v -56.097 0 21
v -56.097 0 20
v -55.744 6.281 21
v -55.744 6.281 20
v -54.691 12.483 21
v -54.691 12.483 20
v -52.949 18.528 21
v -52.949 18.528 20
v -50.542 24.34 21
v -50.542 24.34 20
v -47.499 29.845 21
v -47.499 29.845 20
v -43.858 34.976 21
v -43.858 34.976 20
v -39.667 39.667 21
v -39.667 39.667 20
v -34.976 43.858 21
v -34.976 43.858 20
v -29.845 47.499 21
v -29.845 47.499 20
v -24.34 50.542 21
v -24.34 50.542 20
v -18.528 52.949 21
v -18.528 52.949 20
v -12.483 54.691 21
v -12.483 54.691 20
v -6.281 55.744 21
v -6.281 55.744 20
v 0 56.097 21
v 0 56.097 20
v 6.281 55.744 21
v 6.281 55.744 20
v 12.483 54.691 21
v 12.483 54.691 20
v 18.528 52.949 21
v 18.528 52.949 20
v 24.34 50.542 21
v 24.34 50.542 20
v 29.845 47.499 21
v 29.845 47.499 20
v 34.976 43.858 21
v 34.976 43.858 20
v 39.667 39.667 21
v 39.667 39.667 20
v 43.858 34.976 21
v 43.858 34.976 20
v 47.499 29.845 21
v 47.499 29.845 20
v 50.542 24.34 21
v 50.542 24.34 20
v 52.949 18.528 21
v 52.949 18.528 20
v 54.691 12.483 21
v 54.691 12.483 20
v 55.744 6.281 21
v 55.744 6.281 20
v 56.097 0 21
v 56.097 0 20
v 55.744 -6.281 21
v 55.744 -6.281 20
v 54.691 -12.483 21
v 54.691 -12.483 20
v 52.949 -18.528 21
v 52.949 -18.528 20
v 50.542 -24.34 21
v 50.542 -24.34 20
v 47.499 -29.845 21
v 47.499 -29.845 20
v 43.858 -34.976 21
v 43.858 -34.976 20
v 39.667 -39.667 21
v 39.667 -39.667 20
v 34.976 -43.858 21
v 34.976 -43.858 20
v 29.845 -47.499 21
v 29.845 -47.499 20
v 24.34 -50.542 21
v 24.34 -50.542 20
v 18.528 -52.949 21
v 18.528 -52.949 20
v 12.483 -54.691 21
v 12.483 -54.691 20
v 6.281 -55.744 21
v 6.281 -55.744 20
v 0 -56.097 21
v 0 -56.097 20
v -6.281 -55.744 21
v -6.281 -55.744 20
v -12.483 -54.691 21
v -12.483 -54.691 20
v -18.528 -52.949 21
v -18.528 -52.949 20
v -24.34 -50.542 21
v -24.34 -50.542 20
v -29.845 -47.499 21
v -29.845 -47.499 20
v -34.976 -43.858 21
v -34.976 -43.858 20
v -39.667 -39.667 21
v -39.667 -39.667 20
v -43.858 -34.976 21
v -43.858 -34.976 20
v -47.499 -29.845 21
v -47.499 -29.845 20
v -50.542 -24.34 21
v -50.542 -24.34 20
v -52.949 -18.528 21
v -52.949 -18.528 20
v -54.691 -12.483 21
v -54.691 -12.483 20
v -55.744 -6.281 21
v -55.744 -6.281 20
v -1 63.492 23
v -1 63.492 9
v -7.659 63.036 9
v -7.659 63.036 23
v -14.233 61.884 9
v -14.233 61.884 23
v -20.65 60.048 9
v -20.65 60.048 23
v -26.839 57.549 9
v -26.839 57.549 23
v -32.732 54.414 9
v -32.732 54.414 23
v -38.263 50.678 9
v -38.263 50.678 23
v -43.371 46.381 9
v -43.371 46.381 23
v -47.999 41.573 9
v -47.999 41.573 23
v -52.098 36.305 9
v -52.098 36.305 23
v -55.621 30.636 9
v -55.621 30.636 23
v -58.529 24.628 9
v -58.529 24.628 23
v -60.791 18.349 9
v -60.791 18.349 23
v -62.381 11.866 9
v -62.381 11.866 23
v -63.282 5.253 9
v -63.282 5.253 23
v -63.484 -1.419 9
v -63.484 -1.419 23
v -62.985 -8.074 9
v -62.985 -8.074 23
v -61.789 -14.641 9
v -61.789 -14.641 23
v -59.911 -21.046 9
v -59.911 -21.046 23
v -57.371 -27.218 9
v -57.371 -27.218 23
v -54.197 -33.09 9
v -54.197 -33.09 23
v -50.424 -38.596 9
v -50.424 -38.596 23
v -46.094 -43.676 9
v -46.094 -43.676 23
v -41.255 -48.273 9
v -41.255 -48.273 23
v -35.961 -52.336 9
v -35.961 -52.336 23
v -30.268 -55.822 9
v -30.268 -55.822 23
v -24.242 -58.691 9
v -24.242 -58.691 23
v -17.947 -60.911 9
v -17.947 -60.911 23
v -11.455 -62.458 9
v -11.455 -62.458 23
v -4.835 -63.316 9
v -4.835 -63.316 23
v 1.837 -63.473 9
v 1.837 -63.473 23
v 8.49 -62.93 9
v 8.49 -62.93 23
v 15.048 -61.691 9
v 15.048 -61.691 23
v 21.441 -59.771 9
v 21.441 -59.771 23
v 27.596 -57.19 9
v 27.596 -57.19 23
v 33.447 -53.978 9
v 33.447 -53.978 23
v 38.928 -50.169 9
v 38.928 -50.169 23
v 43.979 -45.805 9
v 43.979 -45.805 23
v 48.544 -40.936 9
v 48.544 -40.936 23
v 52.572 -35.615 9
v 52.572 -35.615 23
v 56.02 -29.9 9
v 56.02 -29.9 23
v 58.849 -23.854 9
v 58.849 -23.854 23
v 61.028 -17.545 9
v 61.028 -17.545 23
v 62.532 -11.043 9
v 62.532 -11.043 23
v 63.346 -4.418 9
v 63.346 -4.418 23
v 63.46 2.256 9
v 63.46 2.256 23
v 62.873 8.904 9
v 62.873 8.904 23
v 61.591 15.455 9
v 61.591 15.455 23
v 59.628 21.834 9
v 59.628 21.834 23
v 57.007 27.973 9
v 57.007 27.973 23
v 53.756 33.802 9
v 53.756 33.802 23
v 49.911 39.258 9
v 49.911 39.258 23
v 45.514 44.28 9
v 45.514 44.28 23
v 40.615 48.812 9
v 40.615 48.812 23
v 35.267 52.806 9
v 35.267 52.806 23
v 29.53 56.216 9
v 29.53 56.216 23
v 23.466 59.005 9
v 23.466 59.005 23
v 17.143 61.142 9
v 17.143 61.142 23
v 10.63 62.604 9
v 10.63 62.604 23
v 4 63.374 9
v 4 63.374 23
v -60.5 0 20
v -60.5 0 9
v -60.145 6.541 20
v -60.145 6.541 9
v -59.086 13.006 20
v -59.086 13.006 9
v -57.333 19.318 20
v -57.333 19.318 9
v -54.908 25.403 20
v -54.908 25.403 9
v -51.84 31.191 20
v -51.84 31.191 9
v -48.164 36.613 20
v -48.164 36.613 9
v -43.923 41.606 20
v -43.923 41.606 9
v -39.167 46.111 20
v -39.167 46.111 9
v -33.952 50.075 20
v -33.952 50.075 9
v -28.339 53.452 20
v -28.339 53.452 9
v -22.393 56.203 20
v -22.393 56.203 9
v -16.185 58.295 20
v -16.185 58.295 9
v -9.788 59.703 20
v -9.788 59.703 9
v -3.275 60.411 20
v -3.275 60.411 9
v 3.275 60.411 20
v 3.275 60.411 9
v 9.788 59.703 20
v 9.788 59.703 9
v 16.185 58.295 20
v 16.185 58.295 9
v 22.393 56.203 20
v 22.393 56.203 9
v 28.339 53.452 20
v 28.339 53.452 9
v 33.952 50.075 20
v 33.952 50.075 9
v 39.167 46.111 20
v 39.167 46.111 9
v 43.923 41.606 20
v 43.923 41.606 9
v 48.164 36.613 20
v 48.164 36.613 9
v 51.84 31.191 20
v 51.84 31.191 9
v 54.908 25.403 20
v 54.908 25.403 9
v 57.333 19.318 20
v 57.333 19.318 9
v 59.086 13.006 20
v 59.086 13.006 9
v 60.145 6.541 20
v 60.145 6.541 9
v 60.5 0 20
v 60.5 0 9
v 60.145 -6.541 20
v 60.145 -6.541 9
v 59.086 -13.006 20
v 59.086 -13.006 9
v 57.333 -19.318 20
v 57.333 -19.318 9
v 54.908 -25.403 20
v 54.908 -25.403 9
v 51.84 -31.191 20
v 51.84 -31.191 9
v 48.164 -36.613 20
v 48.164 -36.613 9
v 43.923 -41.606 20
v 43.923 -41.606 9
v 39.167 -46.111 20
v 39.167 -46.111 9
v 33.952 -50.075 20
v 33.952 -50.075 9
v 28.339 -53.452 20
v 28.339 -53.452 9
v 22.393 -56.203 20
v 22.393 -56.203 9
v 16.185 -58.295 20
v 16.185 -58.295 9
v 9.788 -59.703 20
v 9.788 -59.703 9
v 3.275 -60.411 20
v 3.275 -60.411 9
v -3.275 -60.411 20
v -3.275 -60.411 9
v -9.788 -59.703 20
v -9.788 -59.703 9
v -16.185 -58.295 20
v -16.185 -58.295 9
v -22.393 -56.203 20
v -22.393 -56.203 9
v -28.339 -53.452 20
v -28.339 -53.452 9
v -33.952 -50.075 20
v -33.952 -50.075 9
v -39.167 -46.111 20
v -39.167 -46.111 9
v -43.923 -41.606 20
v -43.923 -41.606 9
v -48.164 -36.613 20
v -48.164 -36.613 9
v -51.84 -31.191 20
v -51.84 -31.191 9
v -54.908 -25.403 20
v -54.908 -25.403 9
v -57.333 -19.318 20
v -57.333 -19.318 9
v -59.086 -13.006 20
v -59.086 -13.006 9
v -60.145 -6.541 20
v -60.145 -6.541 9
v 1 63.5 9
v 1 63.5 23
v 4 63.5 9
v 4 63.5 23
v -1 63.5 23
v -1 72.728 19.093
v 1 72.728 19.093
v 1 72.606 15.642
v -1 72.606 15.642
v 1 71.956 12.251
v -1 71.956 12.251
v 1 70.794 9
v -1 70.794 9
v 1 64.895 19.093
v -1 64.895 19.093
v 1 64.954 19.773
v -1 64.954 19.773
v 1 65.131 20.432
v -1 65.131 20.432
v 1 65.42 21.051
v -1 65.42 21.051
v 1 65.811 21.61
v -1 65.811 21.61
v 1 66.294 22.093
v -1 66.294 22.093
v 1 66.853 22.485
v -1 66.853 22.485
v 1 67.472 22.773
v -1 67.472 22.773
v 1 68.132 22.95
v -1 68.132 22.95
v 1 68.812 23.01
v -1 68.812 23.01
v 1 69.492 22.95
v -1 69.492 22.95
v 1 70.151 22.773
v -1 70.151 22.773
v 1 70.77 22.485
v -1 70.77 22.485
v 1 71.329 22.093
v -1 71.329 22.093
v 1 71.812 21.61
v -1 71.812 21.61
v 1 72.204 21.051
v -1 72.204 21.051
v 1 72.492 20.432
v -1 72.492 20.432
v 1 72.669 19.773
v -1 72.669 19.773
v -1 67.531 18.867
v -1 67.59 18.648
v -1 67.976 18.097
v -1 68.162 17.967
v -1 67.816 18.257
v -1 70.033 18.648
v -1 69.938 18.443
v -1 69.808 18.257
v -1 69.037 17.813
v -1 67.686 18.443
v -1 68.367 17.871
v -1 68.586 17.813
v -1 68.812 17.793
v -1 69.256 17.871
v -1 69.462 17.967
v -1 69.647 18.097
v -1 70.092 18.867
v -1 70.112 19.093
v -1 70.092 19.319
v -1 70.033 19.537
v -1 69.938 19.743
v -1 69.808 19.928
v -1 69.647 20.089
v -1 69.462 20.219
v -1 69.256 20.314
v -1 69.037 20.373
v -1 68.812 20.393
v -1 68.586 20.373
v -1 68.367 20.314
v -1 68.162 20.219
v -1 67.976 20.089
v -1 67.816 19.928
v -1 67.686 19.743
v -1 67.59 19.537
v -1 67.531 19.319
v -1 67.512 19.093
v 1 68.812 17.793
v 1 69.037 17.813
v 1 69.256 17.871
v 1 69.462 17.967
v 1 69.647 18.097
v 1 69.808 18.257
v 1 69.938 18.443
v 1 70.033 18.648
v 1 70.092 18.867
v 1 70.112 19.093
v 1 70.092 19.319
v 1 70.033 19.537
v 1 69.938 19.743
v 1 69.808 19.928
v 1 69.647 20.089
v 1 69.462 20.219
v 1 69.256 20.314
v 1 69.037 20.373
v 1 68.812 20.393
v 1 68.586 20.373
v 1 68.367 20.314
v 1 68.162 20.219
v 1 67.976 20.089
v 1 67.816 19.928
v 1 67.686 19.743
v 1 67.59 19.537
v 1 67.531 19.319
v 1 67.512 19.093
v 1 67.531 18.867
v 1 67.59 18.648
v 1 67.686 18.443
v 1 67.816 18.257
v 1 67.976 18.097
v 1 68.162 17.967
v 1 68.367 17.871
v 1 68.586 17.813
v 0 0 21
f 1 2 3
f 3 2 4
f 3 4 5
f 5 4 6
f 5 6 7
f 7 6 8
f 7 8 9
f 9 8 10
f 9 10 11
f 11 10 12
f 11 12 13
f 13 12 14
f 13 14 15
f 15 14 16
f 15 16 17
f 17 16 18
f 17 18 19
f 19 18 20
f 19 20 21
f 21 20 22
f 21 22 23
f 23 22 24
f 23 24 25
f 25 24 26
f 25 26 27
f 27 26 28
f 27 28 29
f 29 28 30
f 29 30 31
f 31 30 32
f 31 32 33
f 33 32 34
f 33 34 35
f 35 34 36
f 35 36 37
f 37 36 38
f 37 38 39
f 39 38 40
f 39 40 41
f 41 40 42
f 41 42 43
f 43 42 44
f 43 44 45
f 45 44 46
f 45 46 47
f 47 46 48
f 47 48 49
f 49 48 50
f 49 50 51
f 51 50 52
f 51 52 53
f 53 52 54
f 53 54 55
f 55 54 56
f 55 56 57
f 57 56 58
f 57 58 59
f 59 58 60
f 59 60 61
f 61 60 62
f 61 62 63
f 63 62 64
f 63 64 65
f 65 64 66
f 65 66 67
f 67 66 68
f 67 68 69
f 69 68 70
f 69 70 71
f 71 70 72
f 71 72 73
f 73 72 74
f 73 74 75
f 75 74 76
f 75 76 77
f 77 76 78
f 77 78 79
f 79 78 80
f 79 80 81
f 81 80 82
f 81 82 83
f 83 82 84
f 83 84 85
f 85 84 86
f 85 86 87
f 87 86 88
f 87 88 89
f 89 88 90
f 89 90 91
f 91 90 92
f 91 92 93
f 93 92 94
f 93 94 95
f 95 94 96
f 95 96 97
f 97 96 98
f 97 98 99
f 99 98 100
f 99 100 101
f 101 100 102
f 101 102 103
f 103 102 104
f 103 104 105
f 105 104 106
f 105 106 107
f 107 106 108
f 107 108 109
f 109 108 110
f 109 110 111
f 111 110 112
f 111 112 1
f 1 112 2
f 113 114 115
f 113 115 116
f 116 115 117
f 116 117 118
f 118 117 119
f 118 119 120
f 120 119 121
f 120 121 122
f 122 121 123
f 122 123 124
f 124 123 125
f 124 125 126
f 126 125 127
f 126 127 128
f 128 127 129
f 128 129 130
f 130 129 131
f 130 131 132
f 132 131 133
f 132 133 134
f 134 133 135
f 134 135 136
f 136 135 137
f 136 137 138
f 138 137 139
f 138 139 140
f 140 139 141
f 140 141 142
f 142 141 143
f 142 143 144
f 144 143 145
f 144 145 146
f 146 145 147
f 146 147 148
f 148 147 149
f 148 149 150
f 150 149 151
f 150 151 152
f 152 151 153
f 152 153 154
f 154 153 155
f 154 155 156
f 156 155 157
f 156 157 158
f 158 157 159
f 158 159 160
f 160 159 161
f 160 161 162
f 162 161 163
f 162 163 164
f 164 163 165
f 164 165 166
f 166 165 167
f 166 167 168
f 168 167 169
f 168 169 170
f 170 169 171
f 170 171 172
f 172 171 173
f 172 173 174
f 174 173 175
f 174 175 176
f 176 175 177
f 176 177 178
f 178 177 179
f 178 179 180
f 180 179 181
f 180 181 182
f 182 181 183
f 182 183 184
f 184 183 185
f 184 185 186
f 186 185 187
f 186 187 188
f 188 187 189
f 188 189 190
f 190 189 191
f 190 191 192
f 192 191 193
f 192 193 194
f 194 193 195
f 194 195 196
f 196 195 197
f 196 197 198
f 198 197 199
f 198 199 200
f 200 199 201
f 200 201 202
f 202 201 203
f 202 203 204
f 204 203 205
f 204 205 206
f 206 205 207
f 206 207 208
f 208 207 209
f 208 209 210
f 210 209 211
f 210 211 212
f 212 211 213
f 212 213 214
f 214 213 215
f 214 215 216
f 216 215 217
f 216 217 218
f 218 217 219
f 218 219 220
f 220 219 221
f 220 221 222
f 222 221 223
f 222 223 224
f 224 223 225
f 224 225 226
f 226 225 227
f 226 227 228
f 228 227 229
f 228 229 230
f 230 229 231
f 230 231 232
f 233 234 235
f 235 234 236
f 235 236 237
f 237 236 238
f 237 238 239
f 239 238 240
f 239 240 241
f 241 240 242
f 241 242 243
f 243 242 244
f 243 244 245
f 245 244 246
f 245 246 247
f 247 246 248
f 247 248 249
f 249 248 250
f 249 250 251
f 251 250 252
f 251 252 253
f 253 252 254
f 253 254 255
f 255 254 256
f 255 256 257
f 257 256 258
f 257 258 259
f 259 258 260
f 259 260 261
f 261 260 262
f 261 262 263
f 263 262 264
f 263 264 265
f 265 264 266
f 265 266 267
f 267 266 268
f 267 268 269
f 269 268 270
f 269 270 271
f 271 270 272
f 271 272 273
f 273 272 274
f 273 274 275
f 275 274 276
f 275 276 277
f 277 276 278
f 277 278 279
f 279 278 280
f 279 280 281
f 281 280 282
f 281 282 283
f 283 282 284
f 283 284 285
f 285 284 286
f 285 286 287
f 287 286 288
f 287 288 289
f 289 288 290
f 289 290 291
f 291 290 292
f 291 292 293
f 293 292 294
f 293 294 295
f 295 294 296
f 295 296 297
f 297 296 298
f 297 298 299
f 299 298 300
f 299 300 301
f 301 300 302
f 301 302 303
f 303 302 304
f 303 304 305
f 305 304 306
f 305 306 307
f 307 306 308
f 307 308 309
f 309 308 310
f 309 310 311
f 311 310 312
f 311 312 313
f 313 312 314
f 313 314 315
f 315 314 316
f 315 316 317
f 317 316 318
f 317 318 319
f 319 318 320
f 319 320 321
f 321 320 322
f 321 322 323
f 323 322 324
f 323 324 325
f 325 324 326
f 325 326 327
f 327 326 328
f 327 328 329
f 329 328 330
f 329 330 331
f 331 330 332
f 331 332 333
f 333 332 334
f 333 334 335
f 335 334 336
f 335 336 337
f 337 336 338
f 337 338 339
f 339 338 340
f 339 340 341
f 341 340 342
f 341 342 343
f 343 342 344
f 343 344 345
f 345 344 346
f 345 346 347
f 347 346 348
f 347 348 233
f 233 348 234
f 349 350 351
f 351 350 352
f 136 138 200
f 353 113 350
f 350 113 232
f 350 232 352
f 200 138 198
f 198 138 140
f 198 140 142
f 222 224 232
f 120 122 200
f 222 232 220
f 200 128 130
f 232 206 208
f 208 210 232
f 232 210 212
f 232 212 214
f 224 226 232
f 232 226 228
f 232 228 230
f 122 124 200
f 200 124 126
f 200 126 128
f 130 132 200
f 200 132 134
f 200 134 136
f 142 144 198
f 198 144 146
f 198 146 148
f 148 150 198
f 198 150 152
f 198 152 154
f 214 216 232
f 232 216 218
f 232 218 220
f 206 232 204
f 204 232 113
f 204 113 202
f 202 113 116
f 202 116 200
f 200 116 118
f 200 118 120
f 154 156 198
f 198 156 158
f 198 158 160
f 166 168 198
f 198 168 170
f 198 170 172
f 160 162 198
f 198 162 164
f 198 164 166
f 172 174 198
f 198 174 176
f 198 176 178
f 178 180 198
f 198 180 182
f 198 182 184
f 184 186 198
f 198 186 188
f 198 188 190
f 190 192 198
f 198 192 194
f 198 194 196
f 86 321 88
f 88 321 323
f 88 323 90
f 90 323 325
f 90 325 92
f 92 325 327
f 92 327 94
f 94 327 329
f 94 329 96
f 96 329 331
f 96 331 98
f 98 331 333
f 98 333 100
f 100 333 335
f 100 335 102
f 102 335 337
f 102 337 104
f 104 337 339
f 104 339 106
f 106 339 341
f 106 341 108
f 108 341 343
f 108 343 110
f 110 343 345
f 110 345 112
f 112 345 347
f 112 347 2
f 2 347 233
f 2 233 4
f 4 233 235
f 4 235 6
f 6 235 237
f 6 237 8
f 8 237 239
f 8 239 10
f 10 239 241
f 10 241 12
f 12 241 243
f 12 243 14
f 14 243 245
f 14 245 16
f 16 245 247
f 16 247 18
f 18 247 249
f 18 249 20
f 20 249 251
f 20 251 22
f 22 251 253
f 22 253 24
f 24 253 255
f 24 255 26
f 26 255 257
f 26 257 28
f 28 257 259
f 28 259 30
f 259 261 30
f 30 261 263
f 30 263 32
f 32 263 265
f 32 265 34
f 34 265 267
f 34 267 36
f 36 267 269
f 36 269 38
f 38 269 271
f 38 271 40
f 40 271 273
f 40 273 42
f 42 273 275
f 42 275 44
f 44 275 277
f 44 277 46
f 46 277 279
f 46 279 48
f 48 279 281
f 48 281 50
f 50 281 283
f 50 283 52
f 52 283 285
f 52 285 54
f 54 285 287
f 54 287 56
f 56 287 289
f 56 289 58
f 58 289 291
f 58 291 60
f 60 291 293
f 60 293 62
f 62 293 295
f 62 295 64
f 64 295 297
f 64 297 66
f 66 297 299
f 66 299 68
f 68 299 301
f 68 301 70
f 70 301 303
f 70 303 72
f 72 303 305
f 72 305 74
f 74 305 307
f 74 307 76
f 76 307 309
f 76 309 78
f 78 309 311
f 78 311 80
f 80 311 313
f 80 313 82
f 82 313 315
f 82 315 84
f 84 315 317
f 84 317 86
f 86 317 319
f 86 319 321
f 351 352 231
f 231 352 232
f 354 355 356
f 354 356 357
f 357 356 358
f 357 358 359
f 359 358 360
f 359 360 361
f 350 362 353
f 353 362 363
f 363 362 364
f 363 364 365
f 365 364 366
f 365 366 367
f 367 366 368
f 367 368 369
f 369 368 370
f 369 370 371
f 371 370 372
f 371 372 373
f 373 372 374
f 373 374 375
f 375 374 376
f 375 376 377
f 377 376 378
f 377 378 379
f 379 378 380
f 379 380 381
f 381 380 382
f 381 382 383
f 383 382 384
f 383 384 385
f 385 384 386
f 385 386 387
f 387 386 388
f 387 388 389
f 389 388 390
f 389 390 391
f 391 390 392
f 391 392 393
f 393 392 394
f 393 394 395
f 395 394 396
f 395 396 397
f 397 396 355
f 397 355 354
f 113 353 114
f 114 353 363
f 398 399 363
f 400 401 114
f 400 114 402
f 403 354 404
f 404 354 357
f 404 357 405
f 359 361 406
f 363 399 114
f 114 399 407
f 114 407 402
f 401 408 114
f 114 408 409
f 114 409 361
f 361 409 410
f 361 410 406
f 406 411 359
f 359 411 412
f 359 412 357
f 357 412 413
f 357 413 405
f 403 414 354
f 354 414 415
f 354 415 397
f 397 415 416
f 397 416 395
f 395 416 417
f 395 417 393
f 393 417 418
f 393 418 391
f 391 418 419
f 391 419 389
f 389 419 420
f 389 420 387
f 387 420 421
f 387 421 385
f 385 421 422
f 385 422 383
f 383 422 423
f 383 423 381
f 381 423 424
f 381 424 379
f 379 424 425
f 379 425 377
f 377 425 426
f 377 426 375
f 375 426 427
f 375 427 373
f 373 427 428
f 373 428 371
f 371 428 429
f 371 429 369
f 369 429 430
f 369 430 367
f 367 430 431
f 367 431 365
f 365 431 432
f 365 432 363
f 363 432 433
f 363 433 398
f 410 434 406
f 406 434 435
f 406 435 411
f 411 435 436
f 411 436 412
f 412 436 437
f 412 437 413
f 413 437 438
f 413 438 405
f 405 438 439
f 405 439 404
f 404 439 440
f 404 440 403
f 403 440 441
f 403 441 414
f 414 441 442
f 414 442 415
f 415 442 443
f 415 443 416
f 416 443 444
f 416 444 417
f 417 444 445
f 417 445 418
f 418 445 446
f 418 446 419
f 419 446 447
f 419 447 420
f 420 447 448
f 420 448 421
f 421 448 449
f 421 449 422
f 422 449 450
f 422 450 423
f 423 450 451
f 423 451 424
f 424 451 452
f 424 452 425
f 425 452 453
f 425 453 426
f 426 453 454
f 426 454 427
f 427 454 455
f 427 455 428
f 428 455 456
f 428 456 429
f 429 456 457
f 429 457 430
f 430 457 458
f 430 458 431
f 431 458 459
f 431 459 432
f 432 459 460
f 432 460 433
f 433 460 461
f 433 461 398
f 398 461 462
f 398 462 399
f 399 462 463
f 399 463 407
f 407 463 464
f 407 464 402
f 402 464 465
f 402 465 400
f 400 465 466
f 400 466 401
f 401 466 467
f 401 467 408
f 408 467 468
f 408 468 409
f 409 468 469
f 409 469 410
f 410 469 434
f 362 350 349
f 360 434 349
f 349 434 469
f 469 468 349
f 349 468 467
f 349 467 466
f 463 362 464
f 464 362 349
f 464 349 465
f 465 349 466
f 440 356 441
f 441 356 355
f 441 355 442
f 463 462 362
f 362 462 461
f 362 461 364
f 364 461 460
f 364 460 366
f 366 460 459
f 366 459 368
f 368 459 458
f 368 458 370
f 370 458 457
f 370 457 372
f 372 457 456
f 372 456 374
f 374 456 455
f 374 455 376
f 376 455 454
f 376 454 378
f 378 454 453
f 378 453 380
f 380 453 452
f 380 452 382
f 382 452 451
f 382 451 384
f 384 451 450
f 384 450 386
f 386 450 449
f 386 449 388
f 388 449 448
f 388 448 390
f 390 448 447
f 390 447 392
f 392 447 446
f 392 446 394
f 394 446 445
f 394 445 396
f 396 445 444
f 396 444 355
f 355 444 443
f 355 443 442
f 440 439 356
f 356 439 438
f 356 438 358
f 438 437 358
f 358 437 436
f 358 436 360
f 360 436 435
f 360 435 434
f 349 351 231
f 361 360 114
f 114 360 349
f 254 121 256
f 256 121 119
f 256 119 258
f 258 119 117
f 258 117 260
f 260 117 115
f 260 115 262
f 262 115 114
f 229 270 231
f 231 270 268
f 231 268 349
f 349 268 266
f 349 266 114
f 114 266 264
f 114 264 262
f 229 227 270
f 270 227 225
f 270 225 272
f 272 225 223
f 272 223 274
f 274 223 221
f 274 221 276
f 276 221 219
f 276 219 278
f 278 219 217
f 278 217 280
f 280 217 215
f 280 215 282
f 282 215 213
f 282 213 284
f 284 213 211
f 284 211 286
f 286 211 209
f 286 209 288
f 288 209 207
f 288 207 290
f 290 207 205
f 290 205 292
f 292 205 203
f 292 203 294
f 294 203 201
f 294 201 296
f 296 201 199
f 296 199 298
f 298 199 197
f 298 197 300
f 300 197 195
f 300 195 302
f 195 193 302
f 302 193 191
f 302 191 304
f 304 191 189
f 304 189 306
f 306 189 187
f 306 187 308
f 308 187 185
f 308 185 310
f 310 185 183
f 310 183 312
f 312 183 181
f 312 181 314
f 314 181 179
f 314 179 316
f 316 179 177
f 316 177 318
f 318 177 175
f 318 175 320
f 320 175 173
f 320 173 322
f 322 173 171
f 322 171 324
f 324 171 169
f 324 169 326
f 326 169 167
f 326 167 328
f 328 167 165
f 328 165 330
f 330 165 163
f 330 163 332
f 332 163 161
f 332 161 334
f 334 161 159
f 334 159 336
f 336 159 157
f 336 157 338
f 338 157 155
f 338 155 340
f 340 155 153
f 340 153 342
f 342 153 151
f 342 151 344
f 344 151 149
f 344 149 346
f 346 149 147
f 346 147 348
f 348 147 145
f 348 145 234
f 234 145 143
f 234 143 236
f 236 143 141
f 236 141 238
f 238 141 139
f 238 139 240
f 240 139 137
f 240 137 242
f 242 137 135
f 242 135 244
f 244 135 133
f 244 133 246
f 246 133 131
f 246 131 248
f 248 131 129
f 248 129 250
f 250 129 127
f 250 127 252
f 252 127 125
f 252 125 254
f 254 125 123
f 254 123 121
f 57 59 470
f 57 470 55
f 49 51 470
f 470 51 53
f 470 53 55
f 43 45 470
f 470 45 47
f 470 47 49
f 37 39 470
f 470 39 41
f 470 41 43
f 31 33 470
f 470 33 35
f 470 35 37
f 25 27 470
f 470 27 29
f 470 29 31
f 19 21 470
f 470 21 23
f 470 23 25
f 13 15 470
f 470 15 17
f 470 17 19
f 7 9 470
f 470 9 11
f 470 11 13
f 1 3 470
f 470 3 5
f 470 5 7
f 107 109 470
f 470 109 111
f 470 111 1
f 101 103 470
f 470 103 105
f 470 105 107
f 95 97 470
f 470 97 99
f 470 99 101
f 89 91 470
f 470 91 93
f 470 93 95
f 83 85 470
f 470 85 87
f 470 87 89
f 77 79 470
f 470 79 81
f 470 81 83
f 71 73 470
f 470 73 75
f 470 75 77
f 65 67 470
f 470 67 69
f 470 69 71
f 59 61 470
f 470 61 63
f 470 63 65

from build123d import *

# Parameters (mm, degrees)
SKETCH1_R                = 63.5
BOSS_EXTRUDE2_DEPTH      = 23
SHELL4_T                 = -3
SKETCH4_R                = 56.09702957
CUT_EXTRUDE1_DEPTH       = 22
BOSS_EXTRUDE6_DEPTH      = 1
BOSS_EXTRUDE6_DEPTH_BACK = 1
SKETCH8_R                = 1.3
BOSS_EXTRUDE7_REACH      = 145.843
BOSS_EXTRUDE7_END_RADIUS = 63.5
SKETCH9_W                = 5
SKETCH9_H                = 23
SKETCH11_R               = 63.5
CUT_EXTRUDE2_DEPTH       = 9
SKETCH12_W               = 19.480164653
SKETCH12_H               = 12.222333769
CUT_EXTRUDE3_DEPTH       = 13
BOSS_EXTRUDE8_START      = -2
SKETCH13_R               = 63.5
BOSS_EXTRUDE8_DEPTH      = 2


with BuildPart() as part:
    # Sketch1 → Boss-Extrude2 (new body)
    with BuildSketch(Plane.XY):
        Circle(SKETCH1_R)
    extrude(amount=BOSS_EXTRUDE2_DEPTH)

    # Shell4
    shell4_openings = [part.faces().sort_by_distance(p)[0] for p in [
        (0, 0, 0),
    ]]
    offset(amount=SHELL4_T, openings=shell4_openings, kind=Kind.INTERSECTION)

    # Sketch4 → Cut-Extrude1 (cut)
    with BuildSketch(Plane(origin=(0, 0, 20), x_dir=(-1, 0, 0), z_dir=(0, 0, -1))):
        Circle(SKETCH4_R)
    extrude(amount=-CUT_EXTRUDE1_DEPTH, mode=Mode.SUBTRACT)



with BuildPart() as body_2:
    # Sketch8 → Boss-Extrude6 (new, two sides: drawn at the far end of the back side and taken through both)
    with BuildSketch(Plane(origin=(0, 0, 0), x_dir=(0, 0, -1), z_dir=(1, 0, 0)).offset(-BOSS_EXTRUDE6_DEPTH_BACK)):
        with BuildLine():
            Line((-23, 63.5), (0, 63.5))
            ThreePointArc((0, 63.5), (-8.388517362, 70.509736152), (-19.092759253, 72.728481295))
            ThreePointArc((-19.092759253, 72.728481295), (-23.009560108, 68.811680441), (-19.092759253, 64.894879586))
            ThreePointArc((-19.092759253, 64.894879586), (-21.050529465, 64.209064035), (-23, 63.5))
        make_face()
        with Locations((-19.092759253, 68.811680441)):
            Circle(SKETCH8_R, mode=Mode.SUBTRACT)
    extrude(amount=BOSS_EXTRUDE6_DEPTH + BOSS_EXTRUDE6_DEPTH_BACK)


with BuildPart() as part_1:
    add(part.part)

    add(body_2.part)  # Boss-Extrude7 merges body 2
    # Boss-Extrude7: up to this cylinder (the profile starts outside it)
    boss_extrude7_end = Plane(origin=(0, 0, 11.5), z_dir=(0, 0, -1)) * Cylinder(BOSS_EXTRUDE7_END_RADIUS, 419.686, mode=Mode.PRIVATE)
    # Sketch9 → Boss-Extrude7 (add, up to the surface)
    with BuildSketch(Plane.XZ.offset(-63.5), mode=Mode.PRIVATE) as boss_extrude7_sk1:
        with Locations((1.5, 11.5)):
            Rectangle(SKETCH9_W, SKETCH9_H)
    boss_extrude7_tool1 = extrude(boss_extrude7_sk1.sketch, amount=BOSS_EXTRUDE7_REACH, mode=Mode.PRIVATE) - boss_extrude7_end
    add(boss_extrude7_tool1.solids().sort_by_distance((1.5, 63.5, 11.5))[0])
    add(boss_extrude7_tool1.solids().sort_by_distance((1.5, 63.5, 11.5))[1])

    # Sketch11 → Cut-Extrude2 (cut)
    with BuildSketch(Plane(origin=(0, 0, 0), x_dir=(-1, 0, 0), z_dir=(0, 0, -1))):
        Circle(SKETCH11_R)
    extrude(amount=-CUT_EXTRUDE2_DEPTH, mode=Mode.SUBTRACT)

    # Sketch12 → Cut-Extrude3 (cut)
    with BuildSketch(Plane(origin=(0, 0, 9), x_dir=(-1, 0, 0), z_dir=(0, 0, -1))):
        with Locations((1.337314283, 69.052754799)):
            Rectangle(SKETCH12_W, SKETCH12_H)
    extrude(amount=CUT_EXTRUDE3_DEPTH, mode=Mode.SUBTRACT)

    # Sketch13 → Boss-Extrude8 (add)
    with BuildSketch(Plane.XY.offset(23).offset(BOSS_EXTRUDE8_START)):
        Circle(SKETCH13_R)
    extrude(amount=BOSS_EXTRUDE8_DEPTH)


solid = part_1.part
